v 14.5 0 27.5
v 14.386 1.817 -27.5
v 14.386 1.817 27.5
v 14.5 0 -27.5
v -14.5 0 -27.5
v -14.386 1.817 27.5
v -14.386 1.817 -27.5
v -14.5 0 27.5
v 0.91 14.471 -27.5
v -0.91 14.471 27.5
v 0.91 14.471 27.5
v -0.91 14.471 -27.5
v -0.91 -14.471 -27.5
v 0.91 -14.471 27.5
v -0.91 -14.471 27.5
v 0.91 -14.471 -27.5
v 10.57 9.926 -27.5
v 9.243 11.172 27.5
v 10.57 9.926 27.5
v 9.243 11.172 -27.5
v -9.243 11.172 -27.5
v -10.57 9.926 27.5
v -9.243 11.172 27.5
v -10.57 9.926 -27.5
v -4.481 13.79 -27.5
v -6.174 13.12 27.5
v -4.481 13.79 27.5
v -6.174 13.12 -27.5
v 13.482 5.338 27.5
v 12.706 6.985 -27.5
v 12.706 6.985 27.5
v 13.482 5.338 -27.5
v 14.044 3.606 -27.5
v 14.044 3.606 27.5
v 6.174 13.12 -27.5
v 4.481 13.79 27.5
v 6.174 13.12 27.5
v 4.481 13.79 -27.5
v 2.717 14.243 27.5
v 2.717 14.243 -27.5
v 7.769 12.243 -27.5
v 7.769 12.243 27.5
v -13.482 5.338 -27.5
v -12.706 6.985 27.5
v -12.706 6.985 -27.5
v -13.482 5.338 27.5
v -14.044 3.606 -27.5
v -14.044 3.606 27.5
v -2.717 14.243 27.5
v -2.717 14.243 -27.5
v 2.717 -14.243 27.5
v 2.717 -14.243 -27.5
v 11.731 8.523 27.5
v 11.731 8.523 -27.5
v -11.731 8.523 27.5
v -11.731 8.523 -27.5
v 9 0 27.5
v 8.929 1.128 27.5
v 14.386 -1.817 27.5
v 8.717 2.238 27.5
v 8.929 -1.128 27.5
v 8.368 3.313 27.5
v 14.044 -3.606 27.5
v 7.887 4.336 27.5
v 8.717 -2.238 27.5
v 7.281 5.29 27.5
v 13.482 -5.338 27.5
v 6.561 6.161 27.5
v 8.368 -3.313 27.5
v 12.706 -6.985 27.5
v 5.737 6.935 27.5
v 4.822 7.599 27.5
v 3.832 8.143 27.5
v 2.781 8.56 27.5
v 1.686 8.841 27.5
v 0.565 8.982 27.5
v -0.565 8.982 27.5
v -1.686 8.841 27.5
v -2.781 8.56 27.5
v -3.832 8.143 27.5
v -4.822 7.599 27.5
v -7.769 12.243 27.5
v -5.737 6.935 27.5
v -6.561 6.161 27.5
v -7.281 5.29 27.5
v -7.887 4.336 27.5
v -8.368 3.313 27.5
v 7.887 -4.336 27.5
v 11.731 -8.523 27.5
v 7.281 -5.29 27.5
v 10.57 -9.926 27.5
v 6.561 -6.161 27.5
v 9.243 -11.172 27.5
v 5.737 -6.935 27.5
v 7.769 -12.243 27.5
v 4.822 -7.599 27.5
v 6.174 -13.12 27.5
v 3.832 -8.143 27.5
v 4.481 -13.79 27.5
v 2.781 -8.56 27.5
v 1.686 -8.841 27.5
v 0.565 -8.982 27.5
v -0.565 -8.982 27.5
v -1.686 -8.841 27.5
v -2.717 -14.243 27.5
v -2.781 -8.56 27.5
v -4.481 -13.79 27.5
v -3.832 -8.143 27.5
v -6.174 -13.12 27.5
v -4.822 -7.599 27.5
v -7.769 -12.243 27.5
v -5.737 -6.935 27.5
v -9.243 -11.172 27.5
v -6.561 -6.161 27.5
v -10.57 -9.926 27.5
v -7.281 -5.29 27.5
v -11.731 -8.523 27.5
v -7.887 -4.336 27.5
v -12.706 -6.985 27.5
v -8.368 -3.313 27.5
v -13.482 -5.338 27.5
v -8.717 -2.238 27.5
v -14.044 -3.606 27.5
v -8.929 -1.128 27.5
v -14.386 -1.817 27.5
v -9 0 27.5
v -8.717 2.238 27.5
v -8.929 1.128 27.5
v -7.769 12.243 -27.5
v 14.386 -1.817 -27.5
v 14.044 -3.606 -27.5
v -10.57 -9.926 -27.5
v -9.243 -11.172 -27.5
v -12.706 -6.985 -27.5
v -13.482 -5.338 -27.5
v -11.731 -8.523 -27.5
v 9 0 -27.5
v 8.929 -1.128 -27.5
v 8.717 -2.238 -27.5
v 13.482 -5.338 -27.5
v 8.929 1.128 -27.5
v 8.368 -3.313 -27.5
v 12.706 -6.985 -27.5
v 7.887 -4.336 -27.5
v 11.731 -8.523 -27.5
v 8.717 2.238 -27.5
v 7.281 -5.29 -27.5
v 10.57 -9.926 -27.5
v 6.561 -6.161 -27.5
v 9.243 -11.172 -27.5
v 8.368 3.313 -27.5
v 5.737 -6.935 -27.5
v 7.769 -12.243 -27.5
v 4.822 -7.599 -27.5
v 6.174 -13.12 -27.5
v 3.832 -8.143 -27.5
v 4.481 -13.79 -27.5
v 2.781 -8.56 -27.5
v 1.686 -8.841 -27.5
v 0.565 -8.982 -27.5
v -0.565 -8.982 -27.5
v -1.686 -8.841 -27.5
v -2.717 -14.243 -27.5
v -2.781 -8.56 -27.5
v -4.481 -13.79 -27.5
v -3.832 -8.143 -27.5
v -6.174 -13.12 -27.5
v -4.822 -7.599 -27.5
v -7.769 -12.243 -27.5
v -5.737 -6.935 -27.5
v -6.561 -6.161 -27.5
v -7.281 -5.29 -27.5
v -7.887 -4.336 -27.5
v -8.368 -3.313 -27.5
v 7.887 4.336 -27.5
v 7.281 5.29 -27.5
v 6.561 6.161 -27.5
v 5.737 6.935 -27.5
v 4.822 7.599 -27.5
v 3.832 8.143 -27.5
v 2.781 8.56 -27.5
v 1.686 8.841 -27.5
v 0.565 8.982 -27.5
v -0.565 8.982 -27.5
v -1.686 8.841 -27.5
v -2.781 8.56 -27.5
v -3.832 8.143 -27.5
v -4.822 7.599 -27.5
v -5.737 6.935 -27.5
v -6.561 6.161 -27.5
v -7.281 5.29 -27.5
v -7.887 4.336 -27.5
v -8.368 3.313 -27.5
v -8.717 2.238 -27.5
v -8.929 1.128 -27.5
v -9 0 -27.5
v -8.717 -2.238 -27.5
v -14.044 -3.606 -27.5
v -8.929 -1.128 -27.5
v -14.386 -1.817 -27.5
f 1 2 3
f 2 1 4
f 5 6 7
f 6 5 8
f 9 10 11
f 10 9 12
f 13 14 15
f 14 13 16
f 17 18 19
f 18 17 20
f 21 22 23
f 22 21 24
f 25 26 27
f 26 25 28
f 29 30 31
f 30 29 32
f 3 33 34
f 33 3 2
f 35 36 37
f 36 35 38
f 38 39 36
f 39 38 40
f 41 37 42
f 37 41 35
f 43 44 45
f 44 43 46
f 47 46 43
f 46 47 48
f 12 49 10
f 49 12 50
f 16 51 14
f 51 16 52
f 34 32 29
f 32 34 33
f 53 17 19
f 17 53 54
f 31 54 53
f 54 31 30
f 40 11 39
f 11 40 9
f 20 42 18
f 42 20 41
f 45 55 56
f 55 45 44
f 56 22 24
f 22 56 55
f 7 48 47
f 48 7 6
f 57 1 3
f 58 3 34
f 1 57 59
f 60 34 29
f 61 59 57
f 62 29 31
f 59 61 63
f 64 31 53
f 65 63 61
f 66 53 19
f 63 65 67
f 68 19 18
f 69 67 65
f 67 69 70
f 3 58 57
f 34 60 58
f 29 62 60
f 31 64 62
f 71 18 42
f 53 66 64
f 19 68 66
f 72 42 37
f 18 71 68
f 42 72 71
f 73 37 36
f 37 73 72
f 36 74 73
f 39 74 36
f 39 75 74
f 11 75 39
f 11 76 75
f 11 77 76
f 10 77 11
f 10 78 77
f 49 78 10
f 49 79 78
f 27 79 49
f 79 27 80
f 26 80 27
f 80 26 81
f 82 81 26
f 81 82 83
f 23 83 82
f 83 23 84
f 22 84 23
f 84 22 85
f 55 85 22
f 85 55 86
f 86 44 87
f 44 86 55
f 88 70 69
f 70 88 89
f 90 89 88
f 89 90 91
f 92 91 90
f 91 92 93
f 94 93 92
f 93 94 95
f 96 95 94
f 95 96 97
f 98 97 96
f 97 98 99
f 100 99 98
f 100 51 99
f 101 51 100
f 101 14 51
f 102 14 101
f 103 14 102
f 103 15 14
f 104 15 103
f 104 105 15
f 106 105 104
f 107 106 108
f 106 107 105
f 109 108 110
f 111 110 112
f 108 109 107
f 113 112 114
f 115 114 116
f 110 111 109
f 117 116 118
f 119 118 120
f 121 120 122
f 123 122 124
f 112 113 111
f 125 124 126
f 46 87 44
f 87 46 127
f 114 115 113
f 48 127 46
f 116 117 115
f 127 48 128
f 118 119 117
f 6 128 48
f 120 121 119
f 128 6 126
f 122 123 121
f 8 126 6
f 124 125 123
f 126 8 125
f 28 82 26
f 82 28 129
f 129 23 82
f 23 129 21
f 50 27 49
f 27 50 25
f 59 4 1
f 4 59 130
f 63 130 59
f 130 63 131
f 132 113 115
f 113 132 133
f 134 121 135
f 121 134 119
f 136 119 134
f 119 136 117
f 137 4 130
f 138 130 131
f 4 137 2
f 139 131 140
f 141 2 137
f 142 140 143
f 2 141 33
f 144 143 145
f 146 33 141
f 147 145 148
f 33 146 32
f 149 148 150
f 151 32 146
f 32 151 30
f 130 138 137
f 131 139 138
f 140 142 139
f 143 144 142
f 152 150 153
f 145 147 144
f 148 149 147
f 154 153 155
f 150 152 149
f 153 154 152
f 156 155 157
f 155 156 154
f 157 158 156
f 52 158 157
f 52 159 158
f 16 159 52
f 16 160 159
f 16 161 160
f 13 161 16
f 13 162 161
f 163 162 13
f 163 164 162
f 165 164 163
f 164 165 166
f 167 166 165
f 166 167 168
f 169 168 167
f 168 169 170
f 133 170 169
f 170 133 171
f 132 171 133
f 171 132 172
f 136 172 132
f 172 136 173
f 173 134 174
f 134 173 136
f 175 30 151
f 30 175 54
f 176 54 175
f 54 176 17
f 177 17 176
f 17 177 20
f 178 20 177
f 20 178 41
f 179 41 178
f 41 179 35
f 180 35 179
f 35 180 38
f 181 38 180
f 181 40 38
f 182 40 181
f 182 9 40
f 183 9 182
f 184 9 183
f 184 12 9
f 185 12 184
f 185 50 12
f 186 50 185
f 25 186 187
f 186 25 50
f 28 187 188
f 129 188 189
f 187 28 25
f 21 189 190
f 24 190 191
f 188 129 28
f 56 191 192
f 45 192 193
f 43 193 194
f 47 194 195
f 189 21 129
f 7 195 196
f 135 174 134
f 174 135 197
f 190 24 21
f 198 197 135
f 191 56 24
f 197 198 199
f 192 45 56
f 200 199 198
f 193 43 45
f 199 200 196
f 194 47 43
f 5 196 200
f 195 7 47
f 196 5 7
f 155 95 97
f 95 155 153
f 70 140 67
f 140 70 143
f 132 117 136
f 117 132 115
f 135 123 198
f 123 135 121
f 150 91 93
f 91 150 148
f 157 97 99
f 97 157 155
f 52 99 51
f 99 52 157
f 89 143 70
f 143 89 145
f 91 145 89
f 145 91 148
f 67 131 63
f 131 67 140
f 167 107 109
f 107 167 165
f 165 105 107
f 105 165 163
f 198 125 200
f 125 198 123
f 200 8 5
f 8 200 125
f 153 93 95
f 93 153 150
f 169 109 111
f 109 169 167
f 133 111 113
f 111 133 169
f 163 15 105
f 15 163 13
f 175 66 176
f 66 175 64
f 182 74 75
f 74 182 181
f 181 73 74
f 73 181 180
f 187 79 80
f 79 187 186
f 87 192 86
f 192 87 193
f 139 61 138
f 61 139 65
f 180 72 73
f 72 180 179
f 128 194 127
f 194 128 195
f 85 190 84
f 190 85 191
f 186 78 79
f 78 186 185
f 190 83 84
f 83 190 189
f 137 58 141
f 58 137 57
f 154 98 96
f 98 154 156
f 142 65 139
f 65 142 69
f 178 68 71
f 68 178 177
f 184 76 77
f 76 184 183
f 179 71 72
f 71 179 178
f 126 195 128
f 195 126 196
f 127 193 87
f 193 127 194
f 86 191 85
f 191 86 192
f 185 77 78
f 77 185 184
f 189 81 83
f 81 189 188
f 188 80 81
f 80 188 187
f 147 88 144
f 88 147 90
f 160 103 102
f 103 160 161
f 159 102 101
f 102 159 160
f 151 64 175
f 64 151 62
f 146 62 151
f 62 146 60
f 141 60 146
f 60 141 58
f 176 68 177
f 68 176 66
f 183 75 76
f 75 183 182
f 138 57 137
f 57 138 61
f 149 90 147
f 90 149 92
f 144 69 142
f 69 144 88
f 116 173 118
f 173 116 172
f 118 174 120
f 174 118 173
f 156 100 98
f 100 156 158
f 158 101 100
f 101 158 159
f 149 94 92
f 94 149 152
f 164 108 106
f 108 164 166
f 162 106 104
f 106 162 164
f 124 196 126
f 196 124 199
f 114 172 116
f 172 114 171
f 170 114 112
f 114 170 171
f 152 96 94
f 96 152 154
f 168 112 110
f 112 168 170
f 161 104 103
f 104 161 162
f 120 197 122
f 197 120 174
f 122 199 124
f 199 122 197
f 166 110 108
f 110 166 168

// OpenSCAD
$fn = 50;


difference() {
	union() {
		translate(v = [0, 0, -27.5000000000]) {
			cylinder(h = 55, r = 14.5000000000);
		}
	}
	union() {
		translate(v = [0, 0, -100.0000000000]) {
			cylinder(h = 200, r = 9);
		}
	}
}
